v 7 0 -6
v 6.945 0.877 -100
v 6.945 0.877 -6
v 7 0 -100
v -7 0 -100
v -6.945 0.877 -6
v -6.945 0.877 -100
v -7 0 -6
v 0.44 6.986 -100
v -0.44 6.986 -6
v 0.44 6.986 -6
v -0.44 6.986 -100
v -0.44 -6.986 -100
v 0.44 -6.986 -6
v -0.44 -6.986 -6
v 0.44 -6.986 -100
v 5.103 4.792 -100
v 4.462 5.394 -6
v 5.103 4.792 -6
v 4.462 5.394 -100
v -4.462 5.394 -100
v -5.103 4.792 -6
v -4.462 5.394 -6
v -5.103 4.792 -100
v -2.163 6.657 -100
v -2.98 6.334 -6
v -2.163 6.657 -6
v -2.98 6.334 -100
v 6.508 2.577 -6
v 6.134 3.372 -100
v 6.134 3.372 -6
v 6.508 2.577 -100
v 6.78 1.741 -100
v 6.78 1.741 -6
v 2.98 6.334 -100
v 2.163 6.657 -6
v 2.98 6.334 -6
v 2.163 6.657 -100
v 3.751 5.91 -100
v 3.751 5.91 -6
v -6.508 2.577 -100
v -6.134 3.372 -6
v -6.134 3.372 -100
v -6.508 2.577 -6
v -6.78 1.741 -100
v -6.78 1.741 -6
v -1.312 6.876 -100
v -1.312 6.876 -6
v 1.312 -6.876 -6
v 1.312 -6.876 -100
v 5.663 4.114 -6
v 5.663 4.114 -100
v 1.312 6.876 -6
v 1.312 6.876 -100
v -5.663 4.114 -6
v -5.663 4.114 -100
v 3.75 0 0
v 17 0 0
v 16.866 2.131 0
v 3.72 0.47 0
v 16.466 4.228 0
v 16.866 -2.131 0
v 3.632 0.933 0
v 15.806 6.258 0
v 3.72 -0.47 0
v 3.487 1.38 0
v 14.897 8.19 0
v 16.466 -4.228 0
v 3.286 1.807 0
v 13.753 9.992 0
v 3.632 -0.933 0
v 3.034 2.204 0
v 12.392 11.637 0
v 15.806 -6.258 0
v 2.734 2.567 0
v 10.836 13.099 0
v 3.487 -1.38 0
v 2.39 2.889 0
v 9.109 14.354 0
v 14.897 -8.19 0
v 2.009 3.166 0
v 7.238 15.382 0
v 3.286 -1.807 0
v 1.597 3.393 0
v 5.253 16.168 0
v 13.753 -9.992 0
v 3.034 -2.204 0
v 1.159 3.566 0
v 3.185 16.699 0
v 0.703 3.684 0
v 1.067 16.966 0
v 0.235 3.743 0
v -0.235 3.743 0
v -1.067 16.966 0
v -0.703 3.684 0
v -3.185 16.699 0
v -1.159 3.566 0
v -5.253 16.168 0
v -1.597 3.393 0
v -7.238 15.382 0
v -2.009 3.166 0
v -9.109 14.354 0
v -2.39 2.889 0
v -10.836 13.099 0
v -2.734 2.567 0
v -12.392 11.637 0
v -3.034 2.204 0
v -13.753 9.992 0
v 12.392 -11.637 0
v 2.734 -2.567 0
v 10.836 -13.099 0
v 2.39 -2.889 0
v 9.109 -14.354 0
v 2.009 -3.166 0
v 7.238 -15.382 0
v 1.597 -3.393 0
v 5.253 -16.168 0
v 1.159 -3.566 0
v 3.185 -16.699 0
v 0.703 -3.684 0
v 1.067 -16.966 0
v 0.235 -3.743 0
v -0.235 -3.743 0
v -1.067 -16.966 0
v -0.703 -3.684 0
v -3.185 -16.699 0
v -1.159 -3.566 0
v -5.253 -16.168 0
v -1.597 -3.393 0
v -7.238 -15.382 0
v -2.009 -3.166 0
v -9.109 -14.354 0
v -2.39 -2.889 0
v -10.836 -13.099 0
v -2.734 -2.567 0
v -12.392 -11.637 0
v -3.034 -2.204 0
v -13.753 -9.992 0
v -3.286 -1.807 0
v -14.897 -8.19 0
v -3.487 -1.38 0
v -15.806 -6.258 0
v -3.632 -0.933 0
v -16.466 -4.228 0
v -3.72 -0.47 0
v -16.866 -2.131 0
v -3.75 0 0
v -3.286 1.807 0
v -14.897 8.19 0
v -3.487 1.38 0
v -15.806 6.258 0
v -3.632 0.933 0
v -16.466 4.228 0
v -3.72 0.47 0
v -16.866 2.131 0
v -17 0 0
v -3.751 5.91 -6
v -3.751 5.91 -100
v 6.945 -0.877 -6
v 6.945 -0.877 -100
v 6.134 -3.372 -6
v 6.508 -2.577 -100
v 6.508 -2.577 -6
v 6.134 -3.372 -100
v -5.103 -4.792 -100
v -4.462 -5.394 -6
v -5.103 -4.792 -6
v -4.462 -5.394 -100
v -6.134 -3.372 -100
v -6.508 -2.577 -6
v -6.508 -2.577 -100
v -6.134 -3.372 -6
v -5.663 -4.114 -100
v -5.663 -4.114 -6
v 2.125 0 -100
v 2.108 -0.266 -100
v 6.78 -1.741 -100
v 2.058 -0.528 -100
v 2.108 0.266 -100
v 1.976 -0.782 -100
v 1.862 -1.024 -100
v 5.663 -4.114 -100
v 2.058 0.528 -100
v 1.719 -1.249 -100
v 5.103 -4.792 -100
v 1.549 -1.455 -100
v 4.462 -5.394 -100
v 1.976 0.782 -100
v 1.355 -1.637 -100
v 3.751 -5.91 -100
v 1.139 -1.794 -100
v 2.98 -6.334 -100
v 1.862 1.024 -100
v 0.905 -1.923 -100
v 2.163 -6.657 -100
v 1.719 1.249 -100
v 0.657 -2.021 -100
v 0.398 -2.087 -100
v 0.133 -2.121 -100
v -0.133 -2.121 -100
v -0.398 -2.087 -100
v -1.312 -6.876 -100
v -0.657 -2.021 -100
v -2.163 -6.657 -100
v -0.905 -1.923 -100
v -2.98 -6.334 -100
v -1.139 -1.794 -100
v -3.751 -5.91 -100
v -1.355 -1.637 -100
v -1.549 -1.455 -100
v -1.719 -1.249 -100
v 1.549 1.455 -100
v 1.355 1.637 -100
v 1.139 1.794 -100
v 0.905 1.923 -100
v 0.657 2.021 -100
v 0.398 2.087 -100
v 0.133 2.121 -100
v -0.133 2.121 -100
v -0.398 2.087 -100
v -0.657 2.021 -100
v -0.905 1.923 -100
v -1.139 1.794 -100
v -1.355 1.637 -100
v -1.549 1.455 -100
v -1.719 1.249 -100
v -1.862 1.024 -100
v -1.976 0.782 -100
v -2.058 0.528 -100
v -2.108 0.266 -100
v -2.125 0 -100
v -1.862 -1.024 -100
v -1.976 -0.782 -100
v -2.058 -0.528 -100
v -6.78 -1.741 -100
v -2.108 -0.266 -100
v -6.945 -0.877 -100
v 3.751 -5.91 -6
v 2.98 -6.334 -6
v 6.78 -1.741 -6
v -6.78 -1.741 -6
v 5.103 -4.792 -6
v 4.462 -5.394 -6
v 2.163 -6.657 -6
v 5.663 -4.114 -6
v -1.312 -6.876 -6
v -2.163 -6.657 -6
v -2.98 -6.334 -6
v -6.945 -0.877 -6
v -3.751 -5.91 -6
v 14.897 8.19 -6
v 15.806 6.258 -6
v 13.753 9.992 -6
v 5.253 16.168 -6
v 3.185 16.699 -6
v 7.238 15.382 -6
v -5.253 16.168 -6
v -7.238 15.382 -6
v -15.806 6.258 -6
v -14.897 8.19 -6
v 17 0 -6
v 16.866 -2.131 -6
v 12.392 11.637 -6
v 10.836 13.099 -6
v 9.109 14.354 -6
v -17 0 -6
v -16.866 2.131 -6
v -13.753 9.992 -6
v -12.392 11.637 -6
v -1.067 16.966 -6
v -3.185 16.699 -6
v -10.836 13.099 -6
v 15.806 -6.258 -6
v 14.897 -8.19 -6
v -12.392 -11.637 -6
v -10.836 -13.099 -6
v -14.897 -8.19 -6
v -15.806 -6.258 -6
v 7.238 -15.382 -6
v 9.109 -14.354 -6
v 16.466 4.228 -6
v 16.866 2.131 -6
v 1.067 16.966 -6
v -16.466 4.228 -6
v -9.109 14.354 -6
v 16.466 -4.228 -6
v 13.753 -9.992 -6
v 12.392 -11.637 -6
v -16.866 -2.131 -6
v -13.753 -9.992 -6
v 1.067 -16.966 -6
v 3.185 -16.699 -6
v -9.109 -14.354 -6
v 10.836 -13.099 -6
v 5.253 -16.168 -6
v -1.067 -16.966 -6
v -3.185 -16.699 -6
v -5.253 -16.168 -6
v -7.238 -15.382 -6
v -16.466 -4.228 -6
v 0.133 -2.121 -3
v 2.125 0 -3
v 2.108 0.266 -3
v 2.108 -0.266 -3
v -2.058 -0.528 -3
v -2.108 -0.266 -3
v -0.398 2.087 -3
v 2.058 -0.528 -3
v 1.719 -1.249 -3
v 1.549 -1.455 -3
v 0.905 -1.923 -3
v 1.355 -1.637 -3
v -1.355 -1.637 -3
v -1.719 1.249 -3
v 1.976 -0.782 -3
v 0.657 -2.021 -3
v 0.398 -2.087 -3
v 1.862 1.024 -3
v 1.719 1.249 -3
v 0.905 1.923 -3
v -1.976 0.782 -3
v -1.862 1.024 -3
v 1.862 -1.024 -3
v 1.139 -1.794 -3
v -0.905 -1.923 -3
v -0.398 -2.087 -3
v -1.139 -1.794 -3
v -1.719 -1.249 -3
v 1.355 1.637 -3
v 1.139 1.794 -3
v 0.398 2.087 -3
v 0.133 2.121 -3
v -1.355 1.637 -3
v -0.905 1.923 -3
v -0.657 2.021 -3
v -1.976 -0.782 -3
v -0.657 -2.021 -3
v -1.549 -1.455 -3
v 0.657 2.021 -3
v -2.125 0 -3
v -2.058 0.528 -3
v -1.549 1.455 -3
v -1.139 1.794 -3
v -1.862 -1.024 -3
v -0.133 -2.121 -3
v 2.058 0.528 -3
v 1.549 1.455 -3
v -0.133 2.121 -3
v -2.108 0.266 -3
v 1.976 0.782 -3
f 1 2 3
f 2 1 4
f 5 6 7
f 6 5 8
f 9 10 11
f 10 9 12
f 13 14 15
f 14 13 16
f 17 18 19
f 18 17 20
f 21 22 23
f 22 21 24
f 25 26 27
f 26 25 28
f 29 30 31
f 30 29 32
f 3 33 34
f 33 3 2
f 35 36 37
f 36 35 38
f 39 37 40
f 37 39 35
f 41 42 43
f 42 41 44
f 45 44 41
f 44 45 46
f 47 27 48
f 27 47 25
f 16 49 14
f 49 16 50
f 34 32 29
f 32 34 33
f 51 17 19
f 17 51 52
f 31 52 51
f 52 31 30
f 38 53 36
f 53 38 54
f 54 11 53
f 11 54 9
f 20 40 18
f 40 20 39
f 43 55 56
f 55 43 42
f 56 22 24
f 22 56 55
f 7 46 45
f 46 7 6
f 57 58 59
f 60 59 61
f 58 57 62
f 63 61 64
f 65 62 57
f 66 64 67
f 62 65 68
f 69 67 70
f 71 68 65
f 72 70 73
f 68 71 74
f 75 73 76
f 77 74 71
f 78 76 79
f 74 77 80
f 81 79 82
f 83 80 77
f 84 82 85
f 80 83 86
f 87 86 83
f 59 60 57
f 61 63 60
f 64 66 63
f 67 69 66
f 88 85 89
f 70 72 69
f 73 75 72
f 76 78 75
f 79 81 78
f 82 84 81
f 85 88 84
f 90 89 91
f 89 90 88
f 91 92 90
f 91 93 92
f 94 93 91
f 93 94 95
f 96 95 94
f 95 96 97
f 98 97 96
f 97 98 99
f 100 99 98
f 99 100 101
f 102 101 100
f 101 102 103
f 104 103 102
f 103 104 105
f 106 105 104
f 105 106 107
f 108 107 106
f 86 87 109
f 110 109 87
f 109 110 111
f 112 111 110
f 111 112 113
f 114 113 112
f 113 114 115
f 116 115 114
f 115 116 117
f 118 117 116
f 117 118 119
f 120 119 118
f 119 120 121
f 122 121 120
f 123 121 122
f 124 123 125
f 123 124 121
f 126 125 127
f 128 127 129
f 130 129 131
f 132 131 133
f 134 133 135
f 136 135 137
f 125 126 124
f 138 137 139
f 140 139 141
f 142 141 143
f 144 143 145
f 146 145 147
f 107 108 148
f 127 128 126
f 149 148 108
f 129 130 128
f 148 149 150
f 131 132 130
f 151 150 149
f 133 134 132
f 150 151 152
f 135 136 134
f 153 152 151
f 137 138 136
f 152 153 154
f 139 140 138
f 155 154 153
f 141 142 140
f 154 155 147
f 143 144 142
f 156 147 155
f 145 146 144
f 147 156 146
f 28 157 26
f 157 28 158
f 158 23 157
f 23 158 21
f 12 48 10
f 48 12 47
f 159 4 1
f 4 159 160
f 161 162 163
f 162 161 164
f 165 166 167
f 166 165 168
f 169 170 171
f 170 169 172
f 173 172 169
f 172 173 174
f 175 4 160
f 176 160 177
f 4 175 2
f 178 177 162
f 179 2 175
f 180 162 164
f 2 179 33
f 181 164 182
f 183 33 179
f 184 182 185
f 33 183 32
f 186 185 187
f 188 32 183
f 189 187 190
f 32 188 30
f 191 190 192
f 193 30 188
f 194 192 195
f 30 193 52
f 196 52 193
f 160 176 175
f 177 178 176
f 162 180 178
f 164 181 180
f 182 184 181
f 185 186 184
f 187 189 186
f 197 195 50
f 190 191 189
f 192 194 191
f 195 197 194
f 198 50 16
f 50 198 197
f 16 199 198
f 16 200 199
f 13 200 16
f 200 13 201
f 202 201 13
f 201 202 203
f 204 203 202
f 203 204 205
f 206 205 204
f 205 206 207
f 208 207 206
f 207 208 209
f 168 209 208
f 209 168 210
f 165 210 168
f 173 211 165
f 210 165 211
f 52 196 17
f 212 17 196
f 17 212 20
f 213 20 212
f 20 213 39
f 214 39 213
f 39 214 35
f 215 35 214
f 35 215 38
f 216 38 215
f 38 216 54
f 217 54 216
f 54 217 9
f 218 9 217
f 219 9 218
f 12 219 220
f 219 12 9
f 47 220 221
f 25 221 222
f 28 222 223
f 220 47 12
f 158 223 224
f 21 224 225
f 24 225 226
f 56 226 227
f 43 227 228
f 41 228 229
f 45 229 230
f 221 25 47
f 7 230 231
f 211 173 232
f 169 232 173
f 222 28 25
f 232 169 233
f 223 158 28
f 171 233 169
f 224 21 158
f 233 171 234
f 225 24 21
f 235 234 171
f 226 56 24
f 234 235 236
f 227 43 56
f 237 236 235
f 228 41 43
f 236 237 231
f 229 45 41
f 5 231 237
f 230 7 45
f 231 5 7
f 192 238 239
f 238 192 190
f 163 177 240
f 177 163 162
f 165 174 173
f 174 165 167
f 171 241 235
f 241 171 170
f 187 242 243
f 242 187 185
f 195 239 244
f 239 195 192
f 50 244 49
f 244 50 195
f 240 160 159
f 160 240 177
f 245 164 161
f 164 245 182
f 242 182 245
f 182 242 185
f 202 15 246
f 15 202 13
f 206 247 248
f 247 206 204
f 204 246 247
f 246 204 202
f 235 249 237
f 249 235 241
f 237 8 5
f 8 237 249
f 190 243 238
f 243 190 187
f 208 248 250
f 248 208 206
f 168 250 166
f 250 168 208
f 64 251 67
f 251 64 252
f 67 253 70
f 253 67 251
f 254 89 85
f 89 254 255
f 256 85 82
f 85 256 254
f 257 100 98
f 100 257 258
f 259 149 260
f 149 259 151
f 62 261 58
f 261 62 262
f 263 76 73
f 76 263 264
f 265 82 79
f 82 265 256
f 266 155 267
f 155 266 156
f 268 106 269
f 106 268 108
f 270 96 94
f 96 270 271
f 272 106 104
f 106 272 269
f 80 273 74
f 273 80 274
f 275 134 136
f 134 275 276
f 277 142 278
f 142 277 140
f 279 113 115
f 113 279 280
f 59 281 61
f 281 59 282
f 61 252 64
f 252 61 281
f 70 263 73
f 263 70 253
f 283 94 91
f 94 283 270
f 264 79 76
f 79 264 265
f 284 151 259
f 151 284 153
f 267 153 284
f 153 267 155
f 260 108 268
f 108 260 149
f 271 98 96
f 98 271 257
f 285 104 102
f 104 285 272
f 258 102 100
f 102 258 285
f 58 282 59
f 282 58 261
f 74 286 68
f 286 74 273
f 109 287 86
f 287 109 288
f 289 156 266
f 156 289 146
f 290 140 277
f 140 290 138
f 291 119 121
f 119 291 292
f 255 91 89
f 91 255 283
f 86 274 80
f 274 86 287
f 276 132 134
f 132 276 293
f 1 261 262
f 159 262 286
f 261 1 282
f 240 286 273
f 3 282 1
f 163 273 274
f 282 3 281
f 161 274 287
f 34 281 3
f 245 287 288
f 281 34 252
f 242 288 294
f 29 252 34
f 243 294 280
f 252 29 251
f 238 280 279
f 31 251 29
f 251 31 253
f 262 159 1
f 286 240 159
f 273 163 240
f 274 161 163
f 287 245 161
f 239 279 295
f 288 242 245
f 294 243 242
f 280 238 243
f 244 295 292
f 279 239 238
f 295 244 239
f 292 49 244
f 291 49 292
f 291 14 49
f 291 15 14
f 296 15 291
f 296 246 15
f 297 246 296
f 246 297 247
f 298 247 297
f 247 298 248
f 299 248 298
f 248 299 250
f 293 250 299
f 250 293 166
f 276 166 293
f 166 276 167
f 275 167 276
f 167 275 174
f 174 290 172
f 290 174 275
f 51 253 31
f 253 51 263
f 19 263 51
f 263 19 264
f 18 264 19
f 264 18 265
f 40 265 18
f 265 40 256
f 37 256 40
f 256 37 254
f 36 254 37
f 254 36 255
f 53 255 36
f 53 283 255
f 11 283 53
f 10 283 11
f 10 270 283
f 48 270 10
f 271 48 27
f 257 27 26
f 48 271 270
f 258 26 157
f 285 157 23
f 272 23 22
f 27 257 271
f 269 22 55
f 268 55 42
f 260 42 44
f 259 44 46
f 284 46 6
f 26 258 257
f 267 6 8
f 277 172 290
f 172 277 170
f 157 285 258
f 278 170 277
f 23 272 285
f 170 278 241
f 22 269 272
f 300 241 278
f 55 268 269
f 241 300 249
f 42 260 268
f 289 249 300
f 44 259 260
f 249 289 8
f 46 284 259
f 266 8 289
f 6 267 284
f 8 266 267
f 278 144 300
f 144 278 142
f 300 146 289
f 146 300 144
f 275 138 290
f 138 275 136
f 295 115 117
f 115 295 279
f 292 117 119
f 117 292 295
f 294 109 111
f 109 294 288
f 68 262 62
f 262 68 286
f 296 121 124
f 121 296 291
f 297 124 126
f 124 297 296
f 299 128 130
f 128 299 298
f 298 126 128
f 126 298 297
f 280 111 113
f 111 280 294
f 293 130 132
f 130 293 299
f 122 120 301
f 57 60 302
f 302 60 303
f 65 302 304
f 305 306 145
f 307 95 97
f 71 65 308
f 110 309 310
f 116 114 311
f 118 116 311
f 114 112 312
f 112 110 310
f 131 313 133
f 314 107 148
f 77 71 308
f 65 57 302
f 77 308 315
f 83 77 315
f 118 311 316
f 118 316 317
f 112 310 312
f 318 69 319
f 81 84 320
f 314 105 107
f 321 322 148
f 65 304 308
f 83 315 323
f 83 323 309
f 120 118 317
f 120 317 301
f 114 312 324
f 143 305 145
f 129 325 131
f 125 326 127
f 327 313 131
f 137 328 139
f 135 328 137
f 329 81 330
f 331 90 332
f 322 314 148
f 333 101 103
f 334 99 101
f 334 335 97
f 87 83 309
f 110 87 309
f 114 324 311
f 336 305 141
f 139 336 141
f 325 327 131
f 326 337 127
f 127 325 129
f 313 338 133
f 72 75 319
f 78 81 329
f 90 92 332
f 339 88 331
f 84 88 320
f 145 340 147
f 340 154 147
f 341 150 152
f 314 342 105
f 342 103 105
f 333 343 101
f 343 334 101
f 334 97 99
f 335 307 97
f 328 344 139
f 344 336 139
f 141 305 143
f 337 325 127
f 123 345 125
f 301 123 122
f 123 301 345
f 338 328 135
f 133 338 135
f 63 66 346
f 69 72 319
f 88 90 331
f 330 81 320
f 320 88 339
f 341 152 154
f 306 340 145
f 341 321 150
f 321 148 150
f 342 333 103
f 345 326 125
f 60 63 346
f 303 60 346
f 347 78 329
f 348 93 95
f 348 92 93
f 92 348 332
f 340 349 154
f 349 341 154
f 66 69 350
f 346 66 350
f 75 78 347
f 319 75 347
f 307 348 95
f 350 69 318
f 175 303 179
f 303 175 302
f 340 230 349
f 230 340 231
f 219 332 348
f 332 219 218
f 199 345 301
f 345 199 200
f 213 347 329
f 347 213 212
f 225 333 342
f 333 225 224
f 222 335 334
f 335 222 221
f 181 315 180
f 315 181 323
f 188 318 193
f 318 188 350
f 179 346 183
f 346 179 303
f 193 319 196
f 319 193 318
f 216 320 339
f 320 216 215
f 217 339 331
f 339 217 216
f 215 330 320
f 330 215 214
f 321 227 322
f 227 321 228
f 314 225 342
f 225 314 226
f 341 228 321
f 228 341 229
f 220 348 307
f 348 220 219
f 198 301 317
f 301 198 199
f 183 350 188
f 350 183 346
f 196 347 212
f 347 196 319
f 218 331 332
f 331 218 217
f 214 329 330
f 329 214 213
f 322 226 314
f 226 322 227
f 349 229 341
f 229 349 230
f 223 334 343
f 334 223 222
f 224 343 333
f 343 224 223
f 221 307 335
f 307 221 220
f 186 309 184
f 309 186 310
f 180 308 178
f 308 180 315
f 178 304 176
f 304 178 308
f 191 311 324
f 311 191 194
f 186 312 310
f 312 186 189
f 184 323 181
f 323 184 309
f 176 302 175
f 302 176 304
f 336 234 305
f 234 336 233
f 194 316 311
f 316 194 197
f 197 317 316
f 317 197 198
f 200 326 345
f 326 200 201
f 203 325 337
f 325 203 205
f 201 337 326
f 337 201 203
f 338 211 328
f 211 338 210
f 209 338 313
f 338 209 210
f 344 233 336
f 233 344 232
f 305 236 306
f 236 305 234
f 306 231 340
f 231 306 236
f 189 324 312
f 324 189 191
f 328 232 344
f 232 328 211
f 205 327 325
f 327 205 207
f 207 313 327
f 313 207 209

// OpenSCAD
$fn = 50;


difference() {
	union() {
		translate(v = [0, 0, -100.0000000000]) {
			cylinder(h = 100, r = 7.0000000000);
		}
		translate(v = [0, 0, -6.0000000000]) {
			cylinder(h = 6, r = 17.0000000000);
		}
	}
	union() {
		translate(v = [0, 0, 0]) {
			rotate(a = [0, 0, 0]) {
				difference() {
					union() {
						#translate(v = [0, 0, -100.0000000000]) {
							cylinder(h = 100, r = 2.0000000000);
						}
						#translate(v = [0, 0, -3]) {
							cylinder(h = 3, r = 7.0000000000, r1 = 2.1250000000, r2 = 3.7500000000);
						}
						#translate(v = [0, 0, -100.0000000000]) {
							cylinder(h = 100, r = 2.1250000000);
						}
						#translate(v = [0, 0, -100.0000000000]) {
							cylinder(h = 100, r = 2.0000000000);
						}
					}
					union();
				}
			}
		}
	}
}
